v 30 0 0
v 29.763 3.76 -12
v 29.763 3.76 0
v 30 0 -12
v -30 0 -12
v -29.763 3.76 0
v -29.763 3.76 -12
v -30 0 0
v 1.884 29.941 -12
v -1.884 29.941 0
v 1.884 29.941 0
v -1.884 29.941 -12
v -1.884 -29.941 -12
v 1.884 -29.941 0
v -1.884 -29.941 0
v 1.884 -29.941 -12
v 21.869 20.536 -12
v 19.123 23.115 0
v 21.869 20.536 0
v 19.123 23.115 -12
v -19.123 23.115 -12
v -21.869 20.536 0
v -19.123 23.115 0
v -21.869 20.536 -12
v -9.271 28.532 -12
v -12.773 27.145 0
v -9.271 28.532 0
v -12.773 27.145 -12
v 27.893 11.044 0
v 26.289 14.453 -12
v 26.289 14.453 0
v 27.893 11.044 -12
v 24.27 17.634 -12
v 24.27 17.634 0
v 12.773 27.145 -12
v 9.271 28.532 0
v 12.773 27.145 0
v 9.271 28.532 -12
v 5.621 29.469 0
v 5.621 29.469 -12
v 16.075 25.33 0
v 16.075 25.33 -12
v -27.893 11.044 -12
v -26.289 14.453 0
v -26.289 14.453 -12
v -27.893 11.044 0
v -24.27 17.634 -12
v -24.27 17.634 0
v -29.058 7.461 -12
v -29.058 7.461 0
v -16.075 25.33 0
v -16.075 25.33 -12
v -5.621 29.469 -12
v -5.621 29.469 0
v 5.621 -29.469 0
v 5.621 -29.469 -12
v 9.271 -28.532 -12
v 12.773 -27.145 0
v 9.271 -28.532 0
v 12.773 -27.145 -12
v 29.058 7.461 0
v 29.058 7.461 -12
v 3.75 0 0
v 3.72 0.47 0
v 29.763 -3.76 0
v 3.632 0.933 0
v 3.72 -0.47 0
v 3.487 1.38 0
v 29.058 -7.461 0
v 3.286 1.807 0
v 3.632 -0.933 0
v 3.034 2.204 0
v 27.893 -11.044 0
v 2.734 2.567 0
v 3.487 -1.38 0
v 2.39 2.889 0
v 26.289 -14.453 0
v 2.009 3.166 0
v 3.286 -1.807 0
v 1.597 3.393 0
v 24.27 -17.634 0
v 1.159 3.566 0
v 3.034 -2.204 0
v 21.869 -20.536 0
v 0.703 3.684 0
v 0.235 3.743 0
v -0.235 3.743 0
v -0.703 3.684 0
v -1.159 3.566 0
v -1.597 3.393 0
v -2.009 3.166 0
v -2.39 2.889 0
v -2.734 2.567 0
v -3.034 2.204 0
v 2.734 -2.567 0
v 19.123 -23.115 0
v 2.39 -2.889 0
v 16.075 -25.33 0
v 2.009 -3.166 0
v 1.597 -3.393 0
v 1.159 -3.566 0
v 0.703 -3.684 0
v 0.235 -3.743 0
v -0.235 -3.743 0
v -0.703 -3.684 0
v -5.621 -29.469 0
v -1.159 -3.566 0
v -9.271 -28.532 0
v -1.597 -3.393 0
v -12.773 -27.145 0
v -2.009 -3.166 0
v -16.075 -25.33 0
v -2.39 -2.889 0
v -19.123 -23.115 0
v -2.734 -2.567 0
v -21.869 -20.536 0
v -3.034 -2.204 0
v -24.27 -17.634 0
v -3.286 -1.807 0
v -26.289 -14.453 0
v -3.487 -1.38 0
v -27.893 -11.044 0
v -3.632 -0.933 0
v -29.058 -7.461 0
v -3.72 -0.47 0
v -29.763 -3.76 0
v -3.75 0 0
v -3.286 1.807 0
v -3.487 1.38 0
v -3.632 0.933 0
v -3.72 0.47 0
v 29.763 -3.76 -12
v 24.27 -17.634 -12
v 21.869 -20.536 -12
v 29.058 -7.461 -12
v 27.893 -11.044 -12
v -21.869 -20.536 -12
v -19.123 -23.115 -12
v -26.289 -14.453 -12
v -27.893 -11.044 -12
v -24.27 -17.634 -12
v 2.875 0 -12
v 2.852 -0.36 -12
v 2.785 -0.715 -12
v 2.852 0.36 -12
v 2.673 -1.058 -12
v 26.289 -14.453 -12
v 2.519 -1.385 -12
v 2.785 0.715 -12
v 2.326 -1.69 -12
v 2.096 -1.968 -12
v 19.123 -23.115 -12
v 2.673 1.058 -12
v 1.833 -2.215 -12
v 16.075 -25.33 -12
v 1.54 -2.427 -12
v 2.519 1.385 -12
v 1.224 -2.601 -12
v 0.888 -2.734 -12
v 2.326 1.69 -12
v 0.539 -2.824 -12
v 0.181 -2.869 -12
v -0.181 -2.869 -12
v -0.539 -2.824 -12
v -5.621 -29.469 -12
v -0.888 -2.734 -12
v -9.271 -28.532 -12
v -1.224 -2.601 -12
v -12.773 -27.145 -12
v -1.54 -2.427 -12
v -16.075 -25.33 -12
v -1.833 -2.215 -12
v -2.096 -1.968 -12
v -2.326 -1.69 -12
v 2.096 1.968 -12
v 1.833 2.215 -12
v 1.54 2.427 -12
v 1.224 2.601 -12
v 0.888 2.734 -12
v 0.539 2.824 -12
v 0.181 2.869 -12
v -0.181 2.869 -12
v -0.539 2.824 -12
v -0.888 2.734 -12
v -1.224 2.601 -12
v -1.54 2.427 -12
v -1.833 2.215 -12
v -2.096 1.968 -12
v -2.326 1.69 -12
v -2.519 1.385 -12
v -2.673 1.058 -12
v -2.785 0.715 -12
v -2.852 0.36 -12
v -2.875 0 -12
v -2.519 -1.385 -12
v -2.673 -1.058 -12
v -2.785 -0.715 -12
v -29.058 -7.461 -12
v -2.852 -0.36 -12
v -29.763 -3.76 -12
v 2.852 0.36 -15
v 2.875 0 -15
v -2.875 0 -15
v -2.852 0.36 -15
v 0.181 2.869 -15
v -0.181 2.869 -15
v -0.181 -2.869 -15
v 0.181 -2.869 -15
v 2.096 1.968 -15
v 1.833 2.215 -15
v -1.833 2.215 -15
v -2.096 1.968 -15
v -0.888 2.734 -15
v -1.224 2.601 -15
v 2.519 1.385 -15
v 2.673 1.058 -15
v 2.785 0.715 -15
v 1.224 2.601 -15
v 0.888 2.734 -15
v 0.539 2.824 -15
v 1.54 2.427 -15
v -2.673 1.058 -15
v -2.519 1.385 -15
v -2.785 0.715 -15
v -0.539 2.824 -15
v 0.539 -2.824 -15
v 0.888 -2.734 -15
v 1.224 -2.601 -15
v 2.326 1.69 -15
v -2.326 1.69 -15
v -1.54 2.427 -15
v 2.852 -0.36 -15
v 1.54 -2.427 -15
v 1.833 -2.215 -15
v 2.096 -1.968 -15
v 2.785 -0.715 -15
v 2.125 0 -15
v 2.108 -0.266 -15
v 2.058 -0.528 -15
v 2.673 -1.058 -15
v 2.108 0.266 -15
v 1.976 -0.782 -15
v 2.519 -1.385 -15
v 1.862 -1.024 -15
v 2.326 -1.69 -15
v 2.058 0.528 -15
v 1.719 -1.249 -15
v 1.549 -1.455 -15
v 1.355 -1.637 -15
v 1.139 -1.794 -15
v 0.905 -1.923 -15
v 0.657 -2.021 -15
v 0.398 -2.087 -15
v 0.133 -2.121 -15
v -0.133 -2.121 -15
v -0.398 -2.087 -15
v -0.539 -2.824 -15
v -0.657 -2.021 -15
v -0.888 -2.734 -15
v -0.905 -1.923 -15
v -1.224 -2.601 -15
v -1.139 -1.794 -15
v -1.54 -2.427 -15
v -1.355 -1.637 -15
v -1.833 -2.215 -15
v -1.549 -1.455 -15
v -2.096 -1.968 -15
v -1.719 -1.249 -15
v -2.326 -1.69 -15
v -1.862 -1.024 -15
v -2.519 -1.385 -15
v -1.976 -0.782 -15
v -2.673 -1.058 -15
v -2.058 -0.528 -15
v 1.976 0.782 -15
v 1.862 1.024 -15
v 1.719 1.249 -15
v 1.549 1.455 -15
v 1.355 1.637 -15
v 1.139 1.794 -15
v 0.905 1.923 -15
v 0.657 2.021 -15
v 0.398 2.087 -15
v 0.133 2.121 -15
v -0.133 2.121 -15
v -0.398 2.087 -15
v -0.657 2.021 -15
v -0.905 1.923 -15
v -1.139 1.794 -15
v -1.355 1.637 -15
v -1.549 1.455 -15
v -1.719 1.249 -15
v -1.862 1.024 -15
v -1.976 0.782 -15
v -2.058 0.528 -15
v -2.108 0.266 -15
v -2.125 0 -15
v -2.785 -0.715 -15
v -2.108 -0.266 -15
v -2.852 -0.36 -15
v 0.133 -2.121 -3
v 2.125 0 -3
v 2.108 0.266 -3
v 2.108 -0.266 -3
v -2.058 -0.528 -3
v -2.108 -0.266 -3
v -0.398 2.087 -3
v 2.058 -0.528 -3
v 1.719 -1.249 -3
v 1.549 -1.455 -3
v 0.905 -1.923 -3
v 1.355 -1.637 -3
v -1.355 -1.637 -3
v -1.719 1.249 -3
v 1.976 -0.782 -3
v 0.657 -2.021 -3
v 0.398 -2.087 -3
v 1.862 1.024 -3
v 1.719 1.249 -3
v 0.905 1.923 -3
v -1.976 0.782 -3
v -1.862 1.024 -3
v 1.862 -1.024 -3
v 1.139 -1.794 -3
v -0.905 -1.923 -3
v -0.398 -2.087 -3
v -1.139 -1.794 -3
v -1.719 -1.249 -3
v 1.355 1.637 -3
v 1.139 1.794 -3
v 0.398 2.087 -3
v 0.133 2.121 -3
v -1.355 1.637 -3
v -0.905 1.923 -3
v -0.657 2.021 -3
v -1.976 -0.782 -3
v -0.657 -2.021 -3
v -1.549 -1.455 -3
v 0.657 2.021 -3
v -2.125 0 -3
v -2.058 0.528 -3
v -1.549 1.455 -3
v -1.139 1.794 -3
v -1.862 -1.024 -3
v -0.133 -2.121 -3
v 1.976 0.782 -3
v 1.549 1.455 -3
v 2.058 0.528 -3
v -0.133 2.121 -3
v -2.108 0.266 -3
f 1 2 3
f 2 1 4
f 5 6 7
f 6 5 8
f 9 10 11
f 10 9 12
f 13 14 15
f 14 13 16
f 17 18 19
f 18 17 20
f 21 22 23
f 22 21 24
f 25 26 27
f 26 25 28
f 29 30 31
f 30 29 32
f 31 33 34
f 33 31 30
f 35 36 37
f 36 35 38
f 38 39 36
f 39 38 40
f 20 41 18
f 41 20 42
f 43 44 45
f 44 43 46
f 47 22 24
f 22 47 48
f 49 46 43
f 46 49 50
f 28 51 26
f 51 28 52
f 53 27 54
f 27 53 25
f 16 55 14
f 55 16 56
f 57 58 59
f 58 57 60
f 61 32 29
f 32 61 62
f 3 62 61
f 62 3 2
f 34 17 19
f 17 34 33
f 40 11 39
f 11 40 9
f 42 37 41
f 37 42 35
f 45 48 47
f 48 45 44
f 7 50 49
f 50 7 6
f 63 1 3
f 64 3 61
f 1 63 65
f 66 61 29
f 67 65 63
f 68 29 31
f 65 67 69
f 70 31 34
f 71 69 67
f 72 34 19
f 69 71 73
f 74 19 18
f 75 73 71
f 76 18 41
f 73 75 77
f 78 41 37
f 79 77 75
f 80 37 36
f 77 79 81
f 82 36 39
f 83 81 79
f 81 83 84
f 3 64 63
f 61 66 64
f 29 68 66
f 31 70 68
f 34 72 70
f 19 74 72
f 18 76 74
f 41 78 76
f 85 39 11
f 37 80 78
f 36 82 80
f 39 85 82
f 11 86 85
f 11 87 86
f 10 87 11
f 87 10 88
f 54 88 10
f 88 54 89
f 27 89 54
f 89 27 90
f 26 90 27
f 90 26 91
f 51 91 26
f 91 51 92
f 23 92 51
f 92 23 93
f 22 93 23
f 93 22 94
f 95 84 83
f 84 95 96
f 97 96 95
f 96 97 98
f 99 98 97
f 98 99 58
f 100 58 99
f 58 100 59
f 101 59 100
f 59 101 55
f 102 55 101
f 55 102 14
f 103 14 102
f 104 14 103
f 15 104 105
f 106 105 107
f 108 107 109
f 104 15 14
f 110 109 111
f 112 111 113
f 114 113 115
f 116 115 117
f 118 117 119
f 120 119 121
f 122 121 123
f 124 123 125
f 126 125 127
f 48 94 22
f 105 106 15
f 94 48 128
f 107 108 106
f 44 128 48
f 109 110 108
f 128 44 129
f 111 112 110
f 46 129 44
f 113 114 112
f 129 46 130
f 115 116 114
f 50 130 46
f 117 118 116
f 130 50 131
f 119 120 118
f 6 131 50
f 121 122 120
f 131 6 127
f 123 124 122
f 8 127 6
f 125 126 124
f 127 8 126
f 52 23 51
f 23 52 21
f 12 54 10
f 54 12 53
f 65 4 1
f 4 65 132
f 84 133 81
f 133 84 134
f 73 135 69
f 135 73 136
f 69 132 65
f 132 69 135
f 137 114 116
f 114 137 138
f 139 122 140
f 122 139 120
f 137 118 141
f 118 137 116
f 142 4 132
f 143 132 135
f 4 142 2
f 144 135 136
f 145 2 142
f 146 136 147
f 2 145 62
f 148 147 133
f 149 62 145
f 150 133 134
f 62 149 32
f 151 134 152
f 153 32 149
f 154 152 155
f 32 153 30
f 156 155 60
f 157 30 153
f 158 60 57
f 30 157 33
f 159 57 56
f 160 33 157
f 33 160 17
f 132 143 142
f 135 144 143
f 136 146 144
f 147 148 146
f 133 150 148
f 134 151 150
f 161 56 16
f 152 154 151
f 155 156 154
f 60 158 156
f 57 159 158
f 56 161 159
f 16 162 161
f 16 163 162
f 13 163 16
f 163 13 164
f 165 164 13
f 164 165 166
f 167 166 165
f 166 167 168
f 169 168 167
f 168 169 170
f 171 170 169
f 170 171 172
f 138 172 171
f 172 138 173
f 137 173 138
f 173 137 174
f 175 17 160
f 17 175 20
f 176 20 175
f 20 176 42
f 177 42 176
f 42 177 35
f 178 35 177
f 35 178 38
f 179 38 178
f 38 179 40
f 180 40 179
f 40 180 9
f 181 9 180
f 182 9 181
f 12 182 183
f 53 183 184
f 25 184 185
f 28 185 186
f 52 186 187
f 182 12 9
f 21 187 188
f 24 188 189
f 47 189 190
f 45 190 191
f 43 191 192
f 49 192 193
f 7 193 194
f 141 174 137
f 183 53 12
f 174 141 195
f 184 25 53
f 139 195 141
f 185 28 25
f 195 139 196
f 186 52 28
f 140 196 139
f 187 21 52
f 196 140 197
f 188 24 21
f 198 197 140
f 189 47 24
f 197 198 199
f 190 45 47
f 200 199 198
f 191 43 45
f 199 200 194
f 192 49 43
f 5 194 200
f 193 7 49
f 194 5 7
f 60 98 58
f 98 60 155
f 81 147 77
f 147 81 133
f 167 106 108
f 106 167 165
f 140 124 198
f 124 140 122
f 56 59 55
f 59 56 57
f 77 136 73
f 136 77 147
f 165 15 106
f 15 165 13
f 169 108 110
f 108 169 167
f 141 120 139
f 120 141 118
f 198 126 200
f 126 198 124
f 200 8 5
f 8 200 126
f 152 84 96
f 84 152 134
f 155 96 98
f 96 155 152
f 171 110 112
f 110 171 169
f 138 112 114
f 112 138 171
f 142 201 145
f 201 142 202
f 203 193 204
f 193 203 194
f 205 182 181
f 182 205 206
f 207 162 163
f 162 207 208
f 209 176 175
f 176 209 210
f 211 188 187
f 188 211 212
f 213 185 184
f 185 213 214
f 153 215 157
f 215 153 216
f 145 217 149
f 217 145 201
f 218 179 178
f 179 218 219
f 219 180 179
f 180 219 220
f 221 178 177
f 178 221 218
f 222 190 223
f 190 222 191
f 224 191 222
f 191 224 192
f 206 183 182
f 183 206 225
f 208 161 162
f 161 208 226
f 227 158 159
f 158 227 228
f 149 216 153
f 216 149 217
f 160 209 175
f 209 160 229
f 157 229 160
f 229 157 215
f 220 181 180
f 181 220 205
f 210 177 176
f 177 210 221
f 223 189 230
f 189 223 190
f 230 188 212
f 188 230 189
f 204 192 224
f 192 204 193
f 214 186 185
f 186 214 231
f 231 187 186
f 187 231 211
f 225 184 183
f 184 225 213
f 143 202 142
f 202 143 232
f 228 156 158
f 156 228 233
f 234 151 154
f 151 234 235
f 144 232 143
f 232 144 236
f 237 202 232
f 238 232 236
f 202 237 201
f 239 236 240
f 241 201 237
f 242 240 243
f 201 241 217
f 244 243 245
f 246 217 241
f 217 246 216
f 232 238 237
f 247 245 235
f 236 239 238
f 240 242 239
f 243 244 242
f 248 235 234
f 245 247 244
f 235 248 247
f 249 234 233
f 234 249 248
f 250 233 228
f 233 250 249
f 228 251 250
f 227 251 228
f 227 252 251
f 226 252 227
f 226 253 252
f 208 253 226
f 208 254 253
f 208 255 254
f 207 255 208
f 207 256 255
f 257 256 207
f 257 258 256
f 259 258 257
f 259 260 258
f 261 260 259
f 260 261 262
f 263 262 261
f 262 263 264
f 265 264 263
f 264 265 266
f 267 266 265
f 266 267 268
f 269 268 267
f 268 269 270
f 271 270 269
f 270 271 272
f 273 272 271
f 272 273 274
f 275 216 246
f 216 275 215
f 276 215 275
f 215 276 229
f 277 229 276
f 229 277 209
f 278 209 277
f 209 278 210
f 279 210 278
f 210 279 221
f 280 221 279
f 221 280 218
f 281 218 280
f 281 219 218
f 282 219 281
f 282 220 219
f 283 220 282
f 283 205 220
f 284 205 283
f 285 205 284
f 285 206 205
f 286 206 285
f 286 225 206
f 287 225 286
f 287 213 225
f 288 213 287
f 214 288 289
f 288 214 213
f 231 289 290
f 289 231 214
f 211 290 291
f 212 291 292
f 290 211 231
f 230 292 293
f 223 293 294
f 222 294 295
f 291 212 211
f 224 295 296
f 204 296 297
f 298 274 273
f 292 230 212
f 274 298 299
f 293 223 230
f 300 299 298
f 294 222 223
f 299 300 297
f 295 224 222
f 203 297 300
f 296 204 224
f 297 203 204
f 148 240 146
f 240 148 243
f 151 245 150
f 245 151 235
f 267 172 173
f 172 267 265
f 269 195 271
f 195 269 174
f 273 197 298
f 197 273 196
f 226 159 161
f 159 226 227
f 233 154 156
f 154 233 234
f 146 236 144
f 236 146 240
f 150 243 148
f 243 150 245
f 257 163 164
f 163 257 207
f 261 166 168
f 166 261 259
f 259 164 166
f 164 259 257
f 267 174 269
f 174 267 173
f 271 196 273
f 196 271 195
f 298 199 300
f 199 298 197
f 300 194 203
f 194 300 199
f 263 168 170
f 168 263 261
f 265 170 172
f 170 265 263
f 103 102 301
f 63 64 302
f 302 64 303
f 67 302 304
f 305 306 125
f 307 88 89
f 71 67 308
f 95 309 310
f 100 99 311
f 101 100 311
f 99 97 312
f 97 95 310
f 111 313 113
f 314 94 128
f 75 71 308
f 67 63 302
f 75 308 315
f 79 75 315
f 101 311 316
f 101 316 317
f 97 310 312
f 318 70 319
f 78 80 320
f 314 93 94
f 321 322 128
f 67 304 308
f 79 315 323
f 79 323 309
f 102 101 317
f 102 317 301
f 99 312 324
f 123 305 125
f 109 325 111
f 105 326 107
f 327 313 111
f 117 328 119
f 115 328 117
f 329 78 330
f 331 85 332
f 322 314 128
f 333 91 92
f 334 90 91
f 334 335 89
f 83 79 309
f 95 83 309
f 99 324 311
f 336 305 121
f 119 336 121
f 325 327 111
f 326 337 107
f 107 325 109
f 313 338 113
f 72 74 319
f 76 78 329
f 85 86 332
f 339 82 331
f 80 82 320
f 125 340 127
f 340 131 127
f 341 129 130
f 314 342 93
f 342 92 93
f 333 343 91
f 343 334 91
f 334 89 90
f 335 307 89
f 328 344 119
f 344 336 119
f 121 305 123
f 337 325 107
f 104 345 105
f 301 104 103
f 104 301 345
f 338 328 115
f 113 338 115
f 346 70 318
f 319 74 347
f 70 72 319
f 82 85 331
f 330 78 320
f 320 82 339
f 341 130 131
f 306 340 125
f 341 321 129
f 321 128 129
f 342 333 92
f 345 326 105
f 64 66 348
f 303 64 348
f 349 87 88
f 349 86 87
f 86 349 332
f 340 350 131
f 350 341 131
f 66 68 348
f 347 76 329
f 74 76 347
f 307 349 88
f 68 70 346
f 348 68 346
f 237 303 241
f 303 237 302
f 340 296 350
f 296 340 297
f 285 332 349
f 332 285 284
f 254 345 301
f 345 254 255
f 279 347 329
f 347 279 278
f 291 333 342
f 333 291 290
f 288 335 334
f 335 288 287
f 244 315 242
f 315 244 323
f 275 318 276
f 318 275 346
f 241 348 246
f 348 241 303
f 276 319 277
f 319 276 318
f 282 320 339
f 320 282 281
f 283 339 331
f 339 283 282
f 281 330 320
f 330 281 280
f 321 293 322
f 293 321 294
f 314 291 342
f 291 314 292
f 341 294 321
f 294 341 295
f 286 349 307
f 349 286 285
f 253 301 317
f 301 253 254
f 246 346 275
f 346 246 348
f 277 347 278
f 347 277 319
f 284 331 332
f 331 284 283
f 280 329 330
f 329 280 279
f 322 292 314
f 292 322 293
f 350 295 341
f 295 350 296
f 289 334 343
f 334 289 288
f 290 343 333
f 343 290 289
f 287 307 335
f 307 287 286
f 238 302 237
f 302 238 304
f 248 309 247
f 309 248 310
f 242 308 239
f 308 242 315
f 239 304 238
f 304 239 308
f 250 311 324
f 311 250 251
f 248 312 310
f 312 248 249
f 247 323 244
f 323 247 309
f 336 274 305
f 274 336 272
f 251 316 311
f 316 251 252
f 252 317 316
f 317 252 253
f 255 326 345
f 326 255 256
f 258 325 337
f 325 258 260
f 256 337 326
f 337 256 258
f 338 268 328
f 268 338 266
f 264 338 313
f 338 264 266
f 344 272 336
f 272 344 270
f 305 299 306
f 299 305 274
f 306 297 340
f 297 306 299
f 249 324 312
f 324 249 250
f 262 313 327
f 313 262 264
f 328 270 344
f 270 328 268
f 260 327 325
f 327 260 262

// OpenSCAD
$fn = 50;

difference() {
	union() {
		translate(v = [0, 0, -12.0]) {
			cylinder(h = 12, r = 30.0);
		}
		#translate(v = [0, 0, -15.0]) {
			cylinder(h = 15, r = 2.875);
		}
	}
	union() {
		translate(v = [0, 0, 0]) {
			rotate(a = [0, 0, 0]) {
				difference() {
					union() {
						translate(v = [0, 0, -15.0]) {
							cylinder(h = 15, r = 2.0);
						}
						translate(v = [0, 0, -3]) {
							cylinder(h = 3, r1 = 2.125, r2 = 3.75);
						}
						translate(v = [0, 0, -15.0]) {
							cylinder(h = 15, r = 2.125);
						}
						translate(v = [0, 0, -15.0]) {
							cylinder(h = 15, r = 2.0);
						}
					}
					union();
				}
			}
		}
	}
}
